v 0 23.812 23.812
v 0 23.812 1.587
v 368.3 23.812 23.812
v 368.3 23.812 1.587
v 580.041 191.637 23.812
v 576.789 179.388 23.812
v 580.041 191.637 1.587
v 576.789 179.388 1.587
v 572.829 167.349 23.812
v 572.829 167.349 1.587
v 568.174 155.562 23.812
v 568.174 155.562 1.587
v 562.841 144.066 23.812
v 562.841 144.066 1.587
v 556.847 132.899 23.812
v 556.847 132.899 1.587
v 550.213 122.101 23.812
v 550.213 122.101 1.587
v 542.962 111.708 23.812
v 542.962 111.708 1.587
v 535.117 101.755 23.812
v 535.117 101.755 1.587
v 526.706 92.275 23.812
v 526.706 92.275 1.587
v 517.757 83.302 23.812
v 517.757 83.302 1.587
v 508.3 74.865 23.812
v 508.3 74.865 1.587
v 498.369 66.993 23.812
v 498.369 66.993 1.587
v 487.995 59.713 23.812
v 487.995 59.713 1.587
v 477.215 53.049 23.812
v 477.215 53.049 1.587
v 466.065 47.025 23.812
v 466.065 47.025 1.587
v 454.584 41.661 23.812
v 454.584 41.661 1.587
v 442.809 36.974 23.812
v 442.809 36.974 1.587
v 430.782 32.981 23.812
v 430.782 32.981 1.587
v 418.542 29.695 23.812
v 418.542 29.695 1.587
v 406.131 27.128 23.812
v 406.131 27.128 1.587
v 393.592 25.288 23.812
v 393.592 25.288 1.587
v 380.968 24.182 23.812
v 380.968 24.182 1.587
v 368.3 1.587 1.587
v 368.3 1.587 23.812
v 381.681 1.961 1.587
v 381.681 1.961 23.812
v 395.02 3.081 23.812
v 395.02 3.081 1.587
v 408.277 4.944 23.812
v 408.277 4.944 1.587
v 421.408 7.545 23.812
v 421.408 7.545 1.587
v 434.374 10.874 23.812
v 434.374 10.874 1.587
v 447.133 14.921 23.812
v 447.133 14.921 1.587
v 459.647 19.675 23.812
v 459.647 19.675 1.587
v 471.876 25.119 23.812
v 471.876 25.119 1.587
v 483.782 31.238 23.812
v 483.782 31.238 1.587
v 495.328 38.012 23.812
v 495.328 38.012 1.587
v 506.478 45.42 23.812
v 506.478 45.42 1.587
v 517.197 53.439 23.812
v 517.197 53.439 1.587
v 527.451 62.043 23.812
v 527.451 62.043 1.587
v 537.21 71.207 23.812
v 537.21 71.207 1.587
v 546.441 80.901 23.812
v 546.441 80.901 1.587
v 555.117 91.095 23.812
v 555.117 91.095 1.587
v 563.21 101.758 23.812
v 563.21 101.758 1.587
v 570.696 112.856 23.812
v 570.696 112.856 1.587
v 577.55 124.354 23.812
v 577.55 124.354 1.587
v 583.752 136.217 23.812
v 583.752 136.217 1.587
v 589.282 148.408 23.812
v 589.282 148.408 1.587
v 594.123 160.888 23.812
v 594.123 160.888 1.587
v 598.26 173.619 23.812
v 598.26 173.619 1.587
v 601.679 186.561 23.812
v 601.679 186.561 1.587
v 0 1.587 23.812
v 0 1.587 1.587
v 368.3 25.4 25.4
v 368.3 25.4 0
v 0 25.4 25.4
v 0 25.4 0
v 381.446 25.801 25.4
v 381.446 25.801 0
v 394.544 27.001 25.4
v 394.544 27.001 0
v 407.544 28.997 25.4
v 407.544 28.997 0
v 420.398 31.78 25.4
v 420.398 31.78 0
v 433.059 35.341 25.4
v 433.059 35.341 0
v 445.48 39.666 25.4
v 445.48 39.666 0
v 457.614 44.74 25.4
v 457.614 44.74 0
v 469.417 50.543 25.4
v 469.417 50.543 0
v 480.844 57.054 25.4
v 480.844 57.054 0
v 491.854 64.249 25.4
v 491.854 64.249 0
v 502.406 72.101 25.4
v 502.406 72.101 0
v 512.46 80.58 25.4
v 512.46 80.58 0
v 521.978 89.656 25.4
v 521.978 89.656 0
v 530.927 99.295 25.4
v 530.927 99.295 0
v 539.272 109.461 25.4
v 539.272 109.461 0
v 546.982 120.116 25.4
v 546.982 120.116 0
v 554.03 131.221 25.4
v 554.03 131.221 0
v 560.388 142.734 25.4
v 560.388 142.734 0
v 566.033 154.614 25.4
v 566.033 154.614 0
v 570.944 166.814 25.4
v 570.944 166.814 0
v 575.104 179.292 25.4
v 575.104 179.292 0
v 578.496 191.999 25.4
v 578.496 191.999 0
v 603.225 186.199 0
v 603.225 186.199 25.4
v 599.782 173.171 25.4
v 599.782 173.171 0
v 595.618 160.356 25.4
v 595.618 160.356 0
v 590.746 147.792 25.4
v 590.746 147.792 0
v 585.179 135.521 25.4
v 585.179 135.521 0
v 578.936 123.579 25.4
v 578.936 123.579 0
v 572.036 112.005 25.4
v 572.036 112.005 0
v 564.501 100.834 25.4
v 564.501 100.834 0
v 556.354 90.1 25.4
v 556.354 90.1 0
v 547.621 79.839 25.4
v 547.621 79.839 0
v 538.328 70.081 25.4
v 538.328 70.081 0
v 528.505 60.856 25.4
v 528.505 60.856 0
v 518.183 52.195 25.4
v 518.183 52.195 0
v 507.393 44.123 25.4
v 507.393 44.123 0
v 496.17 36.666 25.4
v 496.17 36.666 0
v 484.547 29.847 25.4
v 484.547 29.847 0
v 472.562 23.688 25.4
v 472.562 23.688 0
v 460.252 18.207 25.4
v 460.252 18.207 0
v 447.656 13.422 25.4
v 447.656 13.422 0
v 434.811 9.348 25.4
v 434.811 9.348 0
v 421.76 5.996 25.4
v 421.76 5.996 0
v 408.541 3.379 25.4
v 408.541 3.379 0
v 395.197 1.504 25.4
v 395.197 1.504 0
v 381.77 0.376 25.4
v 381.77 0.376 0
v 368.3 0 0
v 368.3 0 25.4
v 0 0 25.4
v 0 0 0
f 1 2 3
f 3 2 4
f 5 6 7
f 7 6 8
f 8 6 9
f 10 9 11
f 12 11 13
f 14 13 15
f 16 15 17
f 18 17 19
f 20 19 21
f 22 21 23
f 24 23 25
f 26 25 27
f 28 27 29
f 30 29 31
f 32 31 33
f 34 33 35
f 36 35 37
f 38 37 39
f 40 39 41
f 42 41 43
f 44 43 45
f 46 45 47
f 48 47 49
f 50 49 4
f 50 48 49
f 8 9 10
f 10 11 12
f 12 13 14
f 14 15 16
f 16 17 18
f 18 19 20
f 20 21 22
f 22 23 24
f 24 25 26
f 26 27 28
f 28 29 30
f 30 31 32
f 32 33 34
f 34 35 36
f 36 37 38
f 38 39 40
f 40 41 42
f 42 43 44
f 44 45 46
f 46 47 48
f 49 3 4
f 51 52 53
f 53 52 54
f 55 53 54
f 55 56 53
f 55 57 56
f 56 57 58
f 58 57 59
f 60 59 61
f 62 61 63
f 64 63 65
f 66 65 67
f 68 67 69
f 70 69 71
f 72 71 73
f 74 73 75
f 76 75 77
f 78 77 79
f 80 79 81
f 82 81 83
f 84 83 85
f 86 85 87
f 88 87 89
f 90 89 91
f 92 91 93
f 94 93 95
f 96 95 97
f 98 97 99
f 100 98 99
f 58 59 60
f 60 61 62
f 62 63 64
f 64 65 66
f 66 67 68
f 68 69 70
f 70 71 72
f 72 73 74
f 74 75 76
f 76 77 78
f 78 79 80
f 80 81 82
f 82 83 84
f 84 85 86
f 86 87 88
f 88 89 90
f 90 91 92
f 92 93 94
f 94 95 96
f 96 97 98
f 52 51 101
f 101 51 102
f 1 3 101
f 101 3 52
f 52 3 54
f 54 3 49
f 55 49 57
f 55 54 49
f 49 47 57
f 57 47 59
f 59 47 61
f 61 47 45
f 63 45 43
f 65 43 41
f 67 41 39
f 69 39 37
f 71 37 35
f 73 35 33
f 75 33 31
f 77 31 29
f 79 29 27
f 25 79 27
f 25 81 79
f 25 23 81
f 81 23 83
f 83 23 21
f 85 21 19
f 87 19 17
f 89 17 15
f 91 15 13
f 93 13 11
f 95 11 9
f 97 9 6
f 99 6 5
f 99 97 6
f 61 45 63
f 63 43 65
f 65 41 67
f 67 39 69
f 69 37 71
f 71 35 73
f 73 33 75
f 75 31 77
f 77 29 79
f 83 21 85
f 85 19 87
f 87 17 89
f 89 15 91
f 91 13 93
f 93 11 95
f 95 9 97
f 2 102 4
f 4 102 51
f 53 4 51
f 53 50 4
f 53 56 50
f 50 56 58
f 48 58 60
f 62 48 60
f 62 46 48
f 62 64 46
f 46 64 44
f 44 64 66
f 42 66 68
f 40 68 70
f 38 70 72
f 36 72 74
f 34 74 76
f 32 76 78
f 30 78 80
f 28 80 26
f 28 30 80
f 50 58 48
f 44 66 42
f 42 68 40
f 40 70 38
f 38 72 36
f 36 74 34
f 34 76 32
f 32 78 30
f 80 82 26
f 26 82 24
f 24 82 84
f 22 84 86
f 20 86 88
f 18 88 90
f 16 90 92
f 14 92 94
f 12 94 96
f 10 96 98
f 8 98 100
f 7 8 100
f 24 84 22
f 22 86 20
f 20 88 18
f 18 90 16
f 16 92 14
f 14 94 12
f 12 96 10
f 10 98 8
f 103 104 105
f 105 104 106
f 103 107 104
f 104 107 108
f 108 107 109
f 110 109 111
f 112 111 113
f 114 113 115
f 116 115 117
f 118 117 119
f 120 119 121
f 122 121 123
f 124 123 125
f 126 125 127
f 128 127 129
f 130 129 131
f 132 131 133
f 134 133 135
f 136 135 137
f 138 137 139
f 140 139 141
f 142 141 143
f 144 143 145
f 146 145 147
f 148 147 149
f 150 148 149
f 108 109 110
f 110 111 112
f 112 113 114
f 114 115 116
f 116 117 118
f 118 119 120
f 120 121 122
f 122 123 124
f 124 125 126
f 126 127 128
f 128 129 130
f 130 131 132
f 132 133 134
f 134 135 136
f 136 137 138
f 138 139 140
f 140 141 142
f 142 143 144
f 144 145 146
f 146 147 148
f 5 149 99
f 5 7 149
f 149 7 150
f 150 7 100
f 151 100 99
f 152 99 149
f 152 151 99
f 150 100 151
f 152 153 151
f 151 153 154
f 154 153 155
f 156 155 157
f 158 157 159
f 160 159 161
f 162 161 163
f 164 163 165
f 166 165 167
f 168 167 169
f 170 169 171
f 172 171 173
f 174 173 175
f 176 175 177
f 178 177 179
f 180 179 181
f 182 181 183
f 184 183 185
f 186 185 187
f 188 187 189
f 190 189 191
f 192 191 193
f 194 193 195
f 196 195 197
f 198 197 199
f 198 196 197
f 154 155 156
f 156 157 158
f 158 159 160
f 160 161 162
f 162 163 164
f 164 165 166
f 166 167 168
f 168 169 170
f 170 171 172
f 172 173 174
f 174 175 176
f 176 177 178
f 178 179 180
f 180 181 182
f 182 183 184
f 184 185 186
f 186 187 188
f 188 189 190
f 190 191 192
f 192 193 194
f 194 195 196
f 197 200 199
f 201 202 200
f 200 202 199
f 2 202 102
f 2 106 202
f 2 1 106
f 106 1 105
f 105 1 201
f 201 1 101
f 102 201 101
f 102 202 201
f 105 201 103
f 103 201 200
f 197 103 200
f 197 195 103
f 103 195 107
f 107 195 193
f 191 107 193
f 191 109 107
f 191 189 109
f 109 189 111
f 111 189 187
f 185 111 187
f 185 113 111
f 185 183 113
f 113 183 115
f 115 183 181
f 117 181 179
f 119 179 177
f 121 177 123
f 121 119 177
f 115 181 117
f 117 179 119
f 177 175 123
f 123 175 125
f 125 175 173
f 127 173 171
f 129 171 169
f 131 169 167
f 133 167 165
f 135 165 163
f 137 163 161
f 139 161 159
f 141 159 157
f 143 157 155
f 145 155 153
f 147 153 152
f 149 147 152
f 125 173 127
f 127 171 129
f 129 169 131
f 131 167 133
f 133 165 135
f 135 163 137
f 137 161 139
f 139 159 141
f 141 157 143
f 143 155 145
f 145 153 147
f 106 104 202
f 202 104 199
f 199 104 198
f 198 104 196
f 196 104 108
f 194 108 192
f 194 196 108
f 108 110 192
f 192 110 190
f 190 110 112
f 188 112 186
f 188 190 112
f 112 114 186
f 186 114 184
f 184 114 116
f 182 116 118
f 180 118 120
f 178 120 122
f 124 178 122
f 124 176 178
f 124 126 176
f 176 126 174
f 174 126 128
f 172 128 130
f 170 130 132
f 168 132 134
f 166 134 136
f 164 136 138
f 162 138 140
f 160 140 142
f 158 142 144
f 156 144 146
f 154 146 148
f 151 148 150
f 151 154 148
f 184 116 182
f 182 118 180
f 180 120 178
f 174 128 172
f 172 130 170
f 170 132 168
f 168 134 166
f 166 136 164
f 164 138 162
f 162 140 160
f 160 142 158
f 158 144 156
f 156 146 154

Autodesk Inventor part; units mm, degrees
ref_plane "YZ Plane" through (0, 0, 0) normal (1, 0, 0) x (0, 1, 0)
ref_plane "XZ Plane" through (0, 0, 0) normal (0, 1, 0) x (-1, 0, 0)
ref_plane "XY Plane" through (0, 0, 0) normal (0, 0, 1) x (1, 0, 0)
sketch "Sketch1" plane through (0, 0, 0) normal (0, 0, 1) x (1, 0, 0)
  arc A0 (368.3, 25.4) -> (578.4957, 191.999) centre (368.3, 241.3) ccw
  arc A1 (368.3, 0) -> (603.2246, 186.1989) centre (368.3, 241.3) ccw
  line L0 (368.3, 25.4) -> (0, 25.4)
  line L1 (0, 25.4) -> (0, 0)
  line L2 (0, 0) -> (368.3, 0)
  line L3 (578.4957, 191.999) -> (603.2246, 186.1989)
  line L4 (368.3, 25.4) -> (368.3, 241.3) construction
  line L5 (368.3, 241.3) -> (578.4957, 191.999) construction
  dimension "d5" = 25.4
  dimension "d6" = 215.9
  dimension "d7" = 368.3
  dimension "d8" = 76.8
extrude "Extrusion1" add sketch "Sketch1" along normal blind 25.4
shell "Shell1" thickness 1.5875 removed faces 2 at (0, 8.4667, 8.4667) at (586.7387, 190.0657, 16.9333)
properties part number "Frame_RearBallGuide"
